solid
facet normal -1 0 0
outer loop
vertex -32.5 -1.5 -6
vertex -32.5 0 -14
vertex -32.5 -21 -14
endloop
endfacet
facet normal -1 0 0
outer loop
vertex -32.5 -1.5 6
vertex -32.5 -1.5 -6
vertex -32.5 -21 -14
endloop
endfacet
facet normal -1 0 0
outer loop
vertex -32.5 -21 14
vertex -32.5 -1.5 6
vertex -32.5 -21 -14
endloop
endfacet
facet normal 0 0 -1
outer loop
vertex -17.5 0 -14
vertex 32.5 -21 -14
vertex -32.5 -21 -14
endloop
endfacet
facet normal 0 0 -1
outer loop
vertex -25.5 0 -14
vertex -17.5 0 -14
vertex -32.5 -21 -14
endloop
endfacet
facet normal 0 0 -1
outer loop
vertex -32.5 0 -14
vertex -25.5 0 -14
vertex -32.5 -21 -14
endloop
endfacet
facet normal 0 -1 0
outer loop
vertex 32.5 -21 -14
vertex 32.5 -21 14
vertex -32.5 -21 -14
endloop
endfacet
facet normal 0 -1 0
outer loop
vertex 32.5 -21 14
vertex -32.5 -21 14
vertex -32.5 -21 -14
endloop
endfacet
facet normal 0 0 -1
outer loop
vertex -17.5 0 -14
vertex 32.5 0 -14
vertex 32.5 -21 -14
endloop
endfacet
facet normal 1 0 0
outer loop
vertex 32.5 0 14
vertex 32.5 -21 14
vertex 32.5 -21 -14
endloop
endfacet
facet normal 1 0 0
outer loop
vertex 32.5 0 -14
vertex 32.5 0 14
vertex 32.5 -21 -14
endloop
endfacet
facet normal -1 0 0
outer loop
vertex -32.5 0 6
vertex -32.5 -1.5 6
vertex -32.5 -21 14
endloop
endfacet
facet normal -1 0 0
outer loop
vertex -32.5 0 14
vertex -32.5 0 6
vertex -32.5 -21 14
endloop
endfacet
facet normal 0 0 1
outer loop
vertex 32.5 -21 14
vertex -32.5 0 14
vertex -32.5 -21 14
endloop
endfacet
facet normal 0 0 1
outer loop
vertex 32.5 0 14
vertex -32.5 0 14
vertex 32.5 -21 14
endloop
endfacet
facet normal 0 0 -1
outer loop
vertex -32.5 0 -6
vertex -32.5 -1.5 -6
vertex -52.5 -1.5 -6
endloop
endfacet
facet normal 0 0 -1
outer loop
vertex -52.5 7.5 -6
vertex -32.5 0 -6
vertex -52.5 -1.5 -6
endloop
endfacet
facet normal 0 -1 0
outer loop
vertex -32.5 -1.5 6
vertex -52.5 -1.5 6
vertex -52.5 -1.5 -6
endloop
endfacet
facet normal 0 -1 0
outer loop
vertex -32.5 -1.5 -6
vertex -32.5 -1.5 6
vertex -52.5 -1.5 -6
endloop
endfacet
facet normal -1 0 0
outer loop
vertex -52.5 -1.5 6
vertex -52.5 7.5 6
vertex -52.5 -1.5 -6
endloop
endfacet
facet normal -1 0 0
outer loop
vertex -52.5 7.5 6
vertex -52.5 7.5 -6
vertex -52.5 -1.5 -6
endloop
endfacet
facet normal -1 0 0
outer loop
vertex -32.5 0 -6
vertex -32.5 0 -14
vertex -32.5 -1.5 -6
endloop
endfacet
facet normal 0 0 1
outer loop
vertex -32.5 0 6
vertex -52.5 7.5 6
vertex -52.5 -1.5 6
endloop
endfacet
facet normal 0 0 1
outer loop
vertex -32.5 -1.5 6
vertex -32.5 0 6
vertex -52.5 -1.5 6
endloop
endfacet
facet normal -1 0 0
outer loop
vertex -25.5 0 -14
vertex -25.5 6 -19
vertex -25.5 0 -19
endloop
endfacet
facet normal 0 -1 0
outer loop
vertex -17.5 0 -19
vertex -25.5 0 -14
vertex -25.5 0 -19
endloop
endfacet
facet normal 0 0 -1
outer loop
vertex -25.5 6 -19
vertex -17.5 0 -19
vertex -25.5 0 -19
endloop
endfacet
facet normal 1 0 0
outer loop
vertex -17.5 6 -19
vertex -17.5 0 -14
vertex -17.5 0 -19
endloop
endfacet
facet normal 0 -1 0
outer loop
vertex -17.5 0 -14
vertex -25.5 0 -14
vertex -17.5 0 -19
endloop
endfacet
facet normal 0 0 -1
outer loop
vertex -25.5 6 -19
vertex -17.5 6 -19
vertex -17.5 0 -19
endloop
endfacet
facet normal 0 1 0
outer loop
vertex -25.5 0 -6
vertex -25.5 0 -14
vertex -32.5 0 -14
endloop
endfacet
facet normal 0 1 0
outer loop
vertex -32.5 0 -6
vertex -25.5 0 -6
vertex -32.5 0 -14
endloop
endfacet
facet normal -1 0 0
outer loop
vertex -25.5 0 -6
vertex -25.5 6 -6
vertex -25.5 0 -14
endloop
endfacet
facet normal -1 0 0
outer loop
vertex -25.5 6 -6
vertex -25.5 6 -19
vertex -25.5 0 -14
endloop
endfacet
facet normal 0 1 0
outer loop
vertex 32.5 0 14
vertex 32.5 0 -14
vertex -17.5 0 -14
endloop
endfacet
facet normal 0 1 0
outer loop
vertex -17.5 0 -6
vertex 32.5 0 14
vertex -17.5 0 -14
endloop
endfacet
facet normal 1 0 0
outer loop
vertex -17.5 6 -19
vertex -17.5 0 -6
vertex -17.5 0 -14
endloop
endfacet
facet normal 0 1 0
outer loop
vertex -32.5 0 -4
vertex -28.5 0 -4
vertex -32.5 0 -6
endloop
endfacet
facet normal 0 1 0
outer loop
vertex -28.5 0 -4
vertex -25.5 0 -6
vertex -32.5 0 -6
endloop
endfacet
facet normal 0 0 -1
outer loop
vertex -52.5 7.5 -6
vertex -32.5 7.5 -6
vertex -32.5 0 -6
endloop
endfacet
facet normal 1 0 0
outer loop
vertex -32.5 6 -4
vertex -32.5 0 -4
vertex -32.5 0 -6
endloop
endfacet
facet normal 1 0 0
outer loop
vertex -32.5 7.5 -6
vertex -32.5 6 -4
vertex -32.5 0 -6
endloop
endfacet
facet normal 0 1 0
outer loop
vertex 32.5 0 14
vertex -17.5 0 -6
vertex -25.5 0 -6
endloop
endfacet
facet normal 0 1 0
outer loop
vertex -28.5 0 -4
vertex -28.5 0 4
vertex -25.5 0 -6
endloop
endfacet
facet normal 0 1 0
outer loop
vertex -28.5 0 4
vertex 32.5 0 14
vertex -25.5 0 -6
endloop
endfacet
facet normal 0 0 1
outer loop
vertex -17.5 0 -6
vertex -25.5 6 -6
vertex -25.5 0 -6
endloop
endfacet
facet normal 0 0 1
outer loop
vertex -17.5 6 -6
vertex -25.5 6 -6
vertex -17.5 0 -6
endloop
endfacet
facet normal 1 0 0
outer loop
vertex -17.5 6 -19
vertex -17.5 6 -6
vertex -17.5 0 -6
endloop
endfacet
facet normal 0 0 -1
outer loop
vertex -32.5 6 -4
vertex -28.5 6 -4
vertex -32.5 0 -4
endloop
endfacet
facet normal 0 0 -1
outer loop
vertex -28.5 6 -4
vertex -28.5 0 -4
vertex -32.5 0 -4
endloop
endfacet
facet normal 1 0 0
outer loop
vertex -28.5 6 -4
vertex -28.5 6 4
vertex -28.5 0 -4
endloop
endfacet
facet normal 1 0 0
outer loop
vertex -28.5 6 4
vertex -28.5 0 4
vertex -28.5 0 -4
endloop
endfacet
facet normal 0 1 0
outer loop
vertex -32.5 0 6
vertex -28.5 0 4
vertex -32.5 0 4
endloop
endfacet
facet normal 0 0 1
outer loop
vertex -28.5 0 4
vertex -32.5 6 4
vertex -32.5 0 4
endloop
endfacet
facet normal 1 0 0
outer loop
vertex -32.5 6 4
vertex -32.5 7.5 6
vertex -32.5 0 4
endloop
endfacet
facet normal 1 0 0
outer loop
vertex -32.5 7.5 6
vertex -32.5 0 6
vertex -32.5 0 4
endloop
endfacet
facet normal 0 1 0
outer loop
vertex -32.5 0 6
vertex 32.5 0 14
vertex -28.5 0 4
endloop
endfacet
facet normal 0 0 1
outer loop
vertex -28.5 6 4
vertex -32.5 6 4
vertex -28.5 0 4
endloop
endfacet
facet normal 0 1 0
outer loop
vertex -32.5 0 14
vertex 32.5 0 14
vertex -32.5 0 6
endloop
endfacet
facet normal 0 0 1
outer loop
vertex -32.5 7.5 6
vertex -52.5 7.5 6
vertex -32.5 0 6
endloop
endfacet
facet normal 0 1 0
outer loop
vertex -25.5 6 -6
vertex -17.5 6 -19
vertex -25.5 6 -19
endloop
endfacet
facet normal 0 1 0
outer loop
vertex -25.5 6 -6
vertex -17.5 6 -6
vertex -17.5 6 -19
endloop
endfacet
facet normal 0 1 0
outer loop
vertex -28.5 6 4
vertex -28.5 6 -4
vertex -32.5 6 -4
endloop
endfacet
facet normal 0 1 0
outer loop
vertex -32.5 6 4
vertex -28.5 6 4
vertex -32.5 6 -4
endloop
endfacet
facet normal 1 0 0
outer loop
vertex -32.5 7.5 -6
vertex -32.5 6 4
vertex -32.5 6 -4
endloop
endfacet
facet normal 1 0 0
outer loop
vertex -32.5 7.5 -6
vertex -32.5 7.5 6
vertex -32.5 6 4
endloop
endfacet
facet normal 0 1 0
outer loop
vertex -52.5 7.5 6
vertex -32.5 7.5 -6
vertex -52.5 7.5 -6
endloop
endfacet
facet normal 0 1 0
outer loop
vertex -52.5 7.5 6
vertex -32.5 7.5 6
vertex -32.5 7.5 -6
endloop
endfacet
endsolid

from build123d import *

# Parameters (mm, degrees)
SKETCH1_W           = 65
SKETCH1_H           = 28
BOSS_EXTRUDE1_DEPTH = 21
SKETCH3_W           = 4
SKETCH3_H           = 8
BOSS_EXTRUDE2_DEPTH = 6
SKETCH3_3_W         = 8
SKETCH3_3_H         = 8
BOSS_EXTRUDE3_DEPTH = 6
SKETCH4_W           = 12
SKETCH4_H           = 9
BOSS_EXTRUDE4_DEPTH = 20
SKETCH5_W           = 8
SKETCH5_H           = 6
BOSS_EXTRUDE5_DEPTH = 5


with BuildPart() as part:
    # Sketch1 → Boss-Extrude1 (new body)
    with BuildSketch(Plane(origin=(0, 0, 0), x_dir=(1, 0, 0), z_dir=(0, 1, 0))):
        Rectangle(SKETCH1_W, SKETCH1_H)
    extrude(amount=-BOSS_EXTRUDE1_DEPTH)

    # Sketch3 → Boss-Extrude2 (add)
    with BuildSketch(Plane(origin=(0, 0, 0), x_dir=(1, 0, 0), z_dir=(0, 1, 0))):
        with Locations((-30.5, 0)):
            Rectangle(SKETCH3_W, SKETCH3_H)
    extrude(amount=BOSS_EXTRUDE2_DEPTH)

    # Sketch3<3> → Boss-Extrude3 (add)
    with BuildSketch(Plane(origin=(0, 0, 0), x_dir=(1, 0, 0), z_dir=(0, 1, 0))):
        with Locations((-21.5, 10)):
            Rectangle(SKETCH3_3_W, SKETCH3_3_H)
    extrude(amount=BOSS_EXTRUDE3_DEPTH)

    # Sketch4 → Boss-Extrude4 (add)
    with BuildSketch(Plane.ZY.offset(32.5)):
        with Locations((0, 3)):
            Rectangle(SKETCH4_W, SKETCH4_H)
    extrude(amount=BOSS_EXTRUDE4_DEPTH)

    # Sketch5 → Boss-Extrude5 (add)
    with BuildSketch(Plane(origin=(0, 0, -14), x_dir=(-1, 0, 0), z_dir=(0, 0, -1))):
        with Locations((21.5, 3)):
            Rectangle(SKETCH5_W, SKETCH5_H)
    extrude(amount=BOSS_EXTRUDE5_DEPTH)


solid = part.part
